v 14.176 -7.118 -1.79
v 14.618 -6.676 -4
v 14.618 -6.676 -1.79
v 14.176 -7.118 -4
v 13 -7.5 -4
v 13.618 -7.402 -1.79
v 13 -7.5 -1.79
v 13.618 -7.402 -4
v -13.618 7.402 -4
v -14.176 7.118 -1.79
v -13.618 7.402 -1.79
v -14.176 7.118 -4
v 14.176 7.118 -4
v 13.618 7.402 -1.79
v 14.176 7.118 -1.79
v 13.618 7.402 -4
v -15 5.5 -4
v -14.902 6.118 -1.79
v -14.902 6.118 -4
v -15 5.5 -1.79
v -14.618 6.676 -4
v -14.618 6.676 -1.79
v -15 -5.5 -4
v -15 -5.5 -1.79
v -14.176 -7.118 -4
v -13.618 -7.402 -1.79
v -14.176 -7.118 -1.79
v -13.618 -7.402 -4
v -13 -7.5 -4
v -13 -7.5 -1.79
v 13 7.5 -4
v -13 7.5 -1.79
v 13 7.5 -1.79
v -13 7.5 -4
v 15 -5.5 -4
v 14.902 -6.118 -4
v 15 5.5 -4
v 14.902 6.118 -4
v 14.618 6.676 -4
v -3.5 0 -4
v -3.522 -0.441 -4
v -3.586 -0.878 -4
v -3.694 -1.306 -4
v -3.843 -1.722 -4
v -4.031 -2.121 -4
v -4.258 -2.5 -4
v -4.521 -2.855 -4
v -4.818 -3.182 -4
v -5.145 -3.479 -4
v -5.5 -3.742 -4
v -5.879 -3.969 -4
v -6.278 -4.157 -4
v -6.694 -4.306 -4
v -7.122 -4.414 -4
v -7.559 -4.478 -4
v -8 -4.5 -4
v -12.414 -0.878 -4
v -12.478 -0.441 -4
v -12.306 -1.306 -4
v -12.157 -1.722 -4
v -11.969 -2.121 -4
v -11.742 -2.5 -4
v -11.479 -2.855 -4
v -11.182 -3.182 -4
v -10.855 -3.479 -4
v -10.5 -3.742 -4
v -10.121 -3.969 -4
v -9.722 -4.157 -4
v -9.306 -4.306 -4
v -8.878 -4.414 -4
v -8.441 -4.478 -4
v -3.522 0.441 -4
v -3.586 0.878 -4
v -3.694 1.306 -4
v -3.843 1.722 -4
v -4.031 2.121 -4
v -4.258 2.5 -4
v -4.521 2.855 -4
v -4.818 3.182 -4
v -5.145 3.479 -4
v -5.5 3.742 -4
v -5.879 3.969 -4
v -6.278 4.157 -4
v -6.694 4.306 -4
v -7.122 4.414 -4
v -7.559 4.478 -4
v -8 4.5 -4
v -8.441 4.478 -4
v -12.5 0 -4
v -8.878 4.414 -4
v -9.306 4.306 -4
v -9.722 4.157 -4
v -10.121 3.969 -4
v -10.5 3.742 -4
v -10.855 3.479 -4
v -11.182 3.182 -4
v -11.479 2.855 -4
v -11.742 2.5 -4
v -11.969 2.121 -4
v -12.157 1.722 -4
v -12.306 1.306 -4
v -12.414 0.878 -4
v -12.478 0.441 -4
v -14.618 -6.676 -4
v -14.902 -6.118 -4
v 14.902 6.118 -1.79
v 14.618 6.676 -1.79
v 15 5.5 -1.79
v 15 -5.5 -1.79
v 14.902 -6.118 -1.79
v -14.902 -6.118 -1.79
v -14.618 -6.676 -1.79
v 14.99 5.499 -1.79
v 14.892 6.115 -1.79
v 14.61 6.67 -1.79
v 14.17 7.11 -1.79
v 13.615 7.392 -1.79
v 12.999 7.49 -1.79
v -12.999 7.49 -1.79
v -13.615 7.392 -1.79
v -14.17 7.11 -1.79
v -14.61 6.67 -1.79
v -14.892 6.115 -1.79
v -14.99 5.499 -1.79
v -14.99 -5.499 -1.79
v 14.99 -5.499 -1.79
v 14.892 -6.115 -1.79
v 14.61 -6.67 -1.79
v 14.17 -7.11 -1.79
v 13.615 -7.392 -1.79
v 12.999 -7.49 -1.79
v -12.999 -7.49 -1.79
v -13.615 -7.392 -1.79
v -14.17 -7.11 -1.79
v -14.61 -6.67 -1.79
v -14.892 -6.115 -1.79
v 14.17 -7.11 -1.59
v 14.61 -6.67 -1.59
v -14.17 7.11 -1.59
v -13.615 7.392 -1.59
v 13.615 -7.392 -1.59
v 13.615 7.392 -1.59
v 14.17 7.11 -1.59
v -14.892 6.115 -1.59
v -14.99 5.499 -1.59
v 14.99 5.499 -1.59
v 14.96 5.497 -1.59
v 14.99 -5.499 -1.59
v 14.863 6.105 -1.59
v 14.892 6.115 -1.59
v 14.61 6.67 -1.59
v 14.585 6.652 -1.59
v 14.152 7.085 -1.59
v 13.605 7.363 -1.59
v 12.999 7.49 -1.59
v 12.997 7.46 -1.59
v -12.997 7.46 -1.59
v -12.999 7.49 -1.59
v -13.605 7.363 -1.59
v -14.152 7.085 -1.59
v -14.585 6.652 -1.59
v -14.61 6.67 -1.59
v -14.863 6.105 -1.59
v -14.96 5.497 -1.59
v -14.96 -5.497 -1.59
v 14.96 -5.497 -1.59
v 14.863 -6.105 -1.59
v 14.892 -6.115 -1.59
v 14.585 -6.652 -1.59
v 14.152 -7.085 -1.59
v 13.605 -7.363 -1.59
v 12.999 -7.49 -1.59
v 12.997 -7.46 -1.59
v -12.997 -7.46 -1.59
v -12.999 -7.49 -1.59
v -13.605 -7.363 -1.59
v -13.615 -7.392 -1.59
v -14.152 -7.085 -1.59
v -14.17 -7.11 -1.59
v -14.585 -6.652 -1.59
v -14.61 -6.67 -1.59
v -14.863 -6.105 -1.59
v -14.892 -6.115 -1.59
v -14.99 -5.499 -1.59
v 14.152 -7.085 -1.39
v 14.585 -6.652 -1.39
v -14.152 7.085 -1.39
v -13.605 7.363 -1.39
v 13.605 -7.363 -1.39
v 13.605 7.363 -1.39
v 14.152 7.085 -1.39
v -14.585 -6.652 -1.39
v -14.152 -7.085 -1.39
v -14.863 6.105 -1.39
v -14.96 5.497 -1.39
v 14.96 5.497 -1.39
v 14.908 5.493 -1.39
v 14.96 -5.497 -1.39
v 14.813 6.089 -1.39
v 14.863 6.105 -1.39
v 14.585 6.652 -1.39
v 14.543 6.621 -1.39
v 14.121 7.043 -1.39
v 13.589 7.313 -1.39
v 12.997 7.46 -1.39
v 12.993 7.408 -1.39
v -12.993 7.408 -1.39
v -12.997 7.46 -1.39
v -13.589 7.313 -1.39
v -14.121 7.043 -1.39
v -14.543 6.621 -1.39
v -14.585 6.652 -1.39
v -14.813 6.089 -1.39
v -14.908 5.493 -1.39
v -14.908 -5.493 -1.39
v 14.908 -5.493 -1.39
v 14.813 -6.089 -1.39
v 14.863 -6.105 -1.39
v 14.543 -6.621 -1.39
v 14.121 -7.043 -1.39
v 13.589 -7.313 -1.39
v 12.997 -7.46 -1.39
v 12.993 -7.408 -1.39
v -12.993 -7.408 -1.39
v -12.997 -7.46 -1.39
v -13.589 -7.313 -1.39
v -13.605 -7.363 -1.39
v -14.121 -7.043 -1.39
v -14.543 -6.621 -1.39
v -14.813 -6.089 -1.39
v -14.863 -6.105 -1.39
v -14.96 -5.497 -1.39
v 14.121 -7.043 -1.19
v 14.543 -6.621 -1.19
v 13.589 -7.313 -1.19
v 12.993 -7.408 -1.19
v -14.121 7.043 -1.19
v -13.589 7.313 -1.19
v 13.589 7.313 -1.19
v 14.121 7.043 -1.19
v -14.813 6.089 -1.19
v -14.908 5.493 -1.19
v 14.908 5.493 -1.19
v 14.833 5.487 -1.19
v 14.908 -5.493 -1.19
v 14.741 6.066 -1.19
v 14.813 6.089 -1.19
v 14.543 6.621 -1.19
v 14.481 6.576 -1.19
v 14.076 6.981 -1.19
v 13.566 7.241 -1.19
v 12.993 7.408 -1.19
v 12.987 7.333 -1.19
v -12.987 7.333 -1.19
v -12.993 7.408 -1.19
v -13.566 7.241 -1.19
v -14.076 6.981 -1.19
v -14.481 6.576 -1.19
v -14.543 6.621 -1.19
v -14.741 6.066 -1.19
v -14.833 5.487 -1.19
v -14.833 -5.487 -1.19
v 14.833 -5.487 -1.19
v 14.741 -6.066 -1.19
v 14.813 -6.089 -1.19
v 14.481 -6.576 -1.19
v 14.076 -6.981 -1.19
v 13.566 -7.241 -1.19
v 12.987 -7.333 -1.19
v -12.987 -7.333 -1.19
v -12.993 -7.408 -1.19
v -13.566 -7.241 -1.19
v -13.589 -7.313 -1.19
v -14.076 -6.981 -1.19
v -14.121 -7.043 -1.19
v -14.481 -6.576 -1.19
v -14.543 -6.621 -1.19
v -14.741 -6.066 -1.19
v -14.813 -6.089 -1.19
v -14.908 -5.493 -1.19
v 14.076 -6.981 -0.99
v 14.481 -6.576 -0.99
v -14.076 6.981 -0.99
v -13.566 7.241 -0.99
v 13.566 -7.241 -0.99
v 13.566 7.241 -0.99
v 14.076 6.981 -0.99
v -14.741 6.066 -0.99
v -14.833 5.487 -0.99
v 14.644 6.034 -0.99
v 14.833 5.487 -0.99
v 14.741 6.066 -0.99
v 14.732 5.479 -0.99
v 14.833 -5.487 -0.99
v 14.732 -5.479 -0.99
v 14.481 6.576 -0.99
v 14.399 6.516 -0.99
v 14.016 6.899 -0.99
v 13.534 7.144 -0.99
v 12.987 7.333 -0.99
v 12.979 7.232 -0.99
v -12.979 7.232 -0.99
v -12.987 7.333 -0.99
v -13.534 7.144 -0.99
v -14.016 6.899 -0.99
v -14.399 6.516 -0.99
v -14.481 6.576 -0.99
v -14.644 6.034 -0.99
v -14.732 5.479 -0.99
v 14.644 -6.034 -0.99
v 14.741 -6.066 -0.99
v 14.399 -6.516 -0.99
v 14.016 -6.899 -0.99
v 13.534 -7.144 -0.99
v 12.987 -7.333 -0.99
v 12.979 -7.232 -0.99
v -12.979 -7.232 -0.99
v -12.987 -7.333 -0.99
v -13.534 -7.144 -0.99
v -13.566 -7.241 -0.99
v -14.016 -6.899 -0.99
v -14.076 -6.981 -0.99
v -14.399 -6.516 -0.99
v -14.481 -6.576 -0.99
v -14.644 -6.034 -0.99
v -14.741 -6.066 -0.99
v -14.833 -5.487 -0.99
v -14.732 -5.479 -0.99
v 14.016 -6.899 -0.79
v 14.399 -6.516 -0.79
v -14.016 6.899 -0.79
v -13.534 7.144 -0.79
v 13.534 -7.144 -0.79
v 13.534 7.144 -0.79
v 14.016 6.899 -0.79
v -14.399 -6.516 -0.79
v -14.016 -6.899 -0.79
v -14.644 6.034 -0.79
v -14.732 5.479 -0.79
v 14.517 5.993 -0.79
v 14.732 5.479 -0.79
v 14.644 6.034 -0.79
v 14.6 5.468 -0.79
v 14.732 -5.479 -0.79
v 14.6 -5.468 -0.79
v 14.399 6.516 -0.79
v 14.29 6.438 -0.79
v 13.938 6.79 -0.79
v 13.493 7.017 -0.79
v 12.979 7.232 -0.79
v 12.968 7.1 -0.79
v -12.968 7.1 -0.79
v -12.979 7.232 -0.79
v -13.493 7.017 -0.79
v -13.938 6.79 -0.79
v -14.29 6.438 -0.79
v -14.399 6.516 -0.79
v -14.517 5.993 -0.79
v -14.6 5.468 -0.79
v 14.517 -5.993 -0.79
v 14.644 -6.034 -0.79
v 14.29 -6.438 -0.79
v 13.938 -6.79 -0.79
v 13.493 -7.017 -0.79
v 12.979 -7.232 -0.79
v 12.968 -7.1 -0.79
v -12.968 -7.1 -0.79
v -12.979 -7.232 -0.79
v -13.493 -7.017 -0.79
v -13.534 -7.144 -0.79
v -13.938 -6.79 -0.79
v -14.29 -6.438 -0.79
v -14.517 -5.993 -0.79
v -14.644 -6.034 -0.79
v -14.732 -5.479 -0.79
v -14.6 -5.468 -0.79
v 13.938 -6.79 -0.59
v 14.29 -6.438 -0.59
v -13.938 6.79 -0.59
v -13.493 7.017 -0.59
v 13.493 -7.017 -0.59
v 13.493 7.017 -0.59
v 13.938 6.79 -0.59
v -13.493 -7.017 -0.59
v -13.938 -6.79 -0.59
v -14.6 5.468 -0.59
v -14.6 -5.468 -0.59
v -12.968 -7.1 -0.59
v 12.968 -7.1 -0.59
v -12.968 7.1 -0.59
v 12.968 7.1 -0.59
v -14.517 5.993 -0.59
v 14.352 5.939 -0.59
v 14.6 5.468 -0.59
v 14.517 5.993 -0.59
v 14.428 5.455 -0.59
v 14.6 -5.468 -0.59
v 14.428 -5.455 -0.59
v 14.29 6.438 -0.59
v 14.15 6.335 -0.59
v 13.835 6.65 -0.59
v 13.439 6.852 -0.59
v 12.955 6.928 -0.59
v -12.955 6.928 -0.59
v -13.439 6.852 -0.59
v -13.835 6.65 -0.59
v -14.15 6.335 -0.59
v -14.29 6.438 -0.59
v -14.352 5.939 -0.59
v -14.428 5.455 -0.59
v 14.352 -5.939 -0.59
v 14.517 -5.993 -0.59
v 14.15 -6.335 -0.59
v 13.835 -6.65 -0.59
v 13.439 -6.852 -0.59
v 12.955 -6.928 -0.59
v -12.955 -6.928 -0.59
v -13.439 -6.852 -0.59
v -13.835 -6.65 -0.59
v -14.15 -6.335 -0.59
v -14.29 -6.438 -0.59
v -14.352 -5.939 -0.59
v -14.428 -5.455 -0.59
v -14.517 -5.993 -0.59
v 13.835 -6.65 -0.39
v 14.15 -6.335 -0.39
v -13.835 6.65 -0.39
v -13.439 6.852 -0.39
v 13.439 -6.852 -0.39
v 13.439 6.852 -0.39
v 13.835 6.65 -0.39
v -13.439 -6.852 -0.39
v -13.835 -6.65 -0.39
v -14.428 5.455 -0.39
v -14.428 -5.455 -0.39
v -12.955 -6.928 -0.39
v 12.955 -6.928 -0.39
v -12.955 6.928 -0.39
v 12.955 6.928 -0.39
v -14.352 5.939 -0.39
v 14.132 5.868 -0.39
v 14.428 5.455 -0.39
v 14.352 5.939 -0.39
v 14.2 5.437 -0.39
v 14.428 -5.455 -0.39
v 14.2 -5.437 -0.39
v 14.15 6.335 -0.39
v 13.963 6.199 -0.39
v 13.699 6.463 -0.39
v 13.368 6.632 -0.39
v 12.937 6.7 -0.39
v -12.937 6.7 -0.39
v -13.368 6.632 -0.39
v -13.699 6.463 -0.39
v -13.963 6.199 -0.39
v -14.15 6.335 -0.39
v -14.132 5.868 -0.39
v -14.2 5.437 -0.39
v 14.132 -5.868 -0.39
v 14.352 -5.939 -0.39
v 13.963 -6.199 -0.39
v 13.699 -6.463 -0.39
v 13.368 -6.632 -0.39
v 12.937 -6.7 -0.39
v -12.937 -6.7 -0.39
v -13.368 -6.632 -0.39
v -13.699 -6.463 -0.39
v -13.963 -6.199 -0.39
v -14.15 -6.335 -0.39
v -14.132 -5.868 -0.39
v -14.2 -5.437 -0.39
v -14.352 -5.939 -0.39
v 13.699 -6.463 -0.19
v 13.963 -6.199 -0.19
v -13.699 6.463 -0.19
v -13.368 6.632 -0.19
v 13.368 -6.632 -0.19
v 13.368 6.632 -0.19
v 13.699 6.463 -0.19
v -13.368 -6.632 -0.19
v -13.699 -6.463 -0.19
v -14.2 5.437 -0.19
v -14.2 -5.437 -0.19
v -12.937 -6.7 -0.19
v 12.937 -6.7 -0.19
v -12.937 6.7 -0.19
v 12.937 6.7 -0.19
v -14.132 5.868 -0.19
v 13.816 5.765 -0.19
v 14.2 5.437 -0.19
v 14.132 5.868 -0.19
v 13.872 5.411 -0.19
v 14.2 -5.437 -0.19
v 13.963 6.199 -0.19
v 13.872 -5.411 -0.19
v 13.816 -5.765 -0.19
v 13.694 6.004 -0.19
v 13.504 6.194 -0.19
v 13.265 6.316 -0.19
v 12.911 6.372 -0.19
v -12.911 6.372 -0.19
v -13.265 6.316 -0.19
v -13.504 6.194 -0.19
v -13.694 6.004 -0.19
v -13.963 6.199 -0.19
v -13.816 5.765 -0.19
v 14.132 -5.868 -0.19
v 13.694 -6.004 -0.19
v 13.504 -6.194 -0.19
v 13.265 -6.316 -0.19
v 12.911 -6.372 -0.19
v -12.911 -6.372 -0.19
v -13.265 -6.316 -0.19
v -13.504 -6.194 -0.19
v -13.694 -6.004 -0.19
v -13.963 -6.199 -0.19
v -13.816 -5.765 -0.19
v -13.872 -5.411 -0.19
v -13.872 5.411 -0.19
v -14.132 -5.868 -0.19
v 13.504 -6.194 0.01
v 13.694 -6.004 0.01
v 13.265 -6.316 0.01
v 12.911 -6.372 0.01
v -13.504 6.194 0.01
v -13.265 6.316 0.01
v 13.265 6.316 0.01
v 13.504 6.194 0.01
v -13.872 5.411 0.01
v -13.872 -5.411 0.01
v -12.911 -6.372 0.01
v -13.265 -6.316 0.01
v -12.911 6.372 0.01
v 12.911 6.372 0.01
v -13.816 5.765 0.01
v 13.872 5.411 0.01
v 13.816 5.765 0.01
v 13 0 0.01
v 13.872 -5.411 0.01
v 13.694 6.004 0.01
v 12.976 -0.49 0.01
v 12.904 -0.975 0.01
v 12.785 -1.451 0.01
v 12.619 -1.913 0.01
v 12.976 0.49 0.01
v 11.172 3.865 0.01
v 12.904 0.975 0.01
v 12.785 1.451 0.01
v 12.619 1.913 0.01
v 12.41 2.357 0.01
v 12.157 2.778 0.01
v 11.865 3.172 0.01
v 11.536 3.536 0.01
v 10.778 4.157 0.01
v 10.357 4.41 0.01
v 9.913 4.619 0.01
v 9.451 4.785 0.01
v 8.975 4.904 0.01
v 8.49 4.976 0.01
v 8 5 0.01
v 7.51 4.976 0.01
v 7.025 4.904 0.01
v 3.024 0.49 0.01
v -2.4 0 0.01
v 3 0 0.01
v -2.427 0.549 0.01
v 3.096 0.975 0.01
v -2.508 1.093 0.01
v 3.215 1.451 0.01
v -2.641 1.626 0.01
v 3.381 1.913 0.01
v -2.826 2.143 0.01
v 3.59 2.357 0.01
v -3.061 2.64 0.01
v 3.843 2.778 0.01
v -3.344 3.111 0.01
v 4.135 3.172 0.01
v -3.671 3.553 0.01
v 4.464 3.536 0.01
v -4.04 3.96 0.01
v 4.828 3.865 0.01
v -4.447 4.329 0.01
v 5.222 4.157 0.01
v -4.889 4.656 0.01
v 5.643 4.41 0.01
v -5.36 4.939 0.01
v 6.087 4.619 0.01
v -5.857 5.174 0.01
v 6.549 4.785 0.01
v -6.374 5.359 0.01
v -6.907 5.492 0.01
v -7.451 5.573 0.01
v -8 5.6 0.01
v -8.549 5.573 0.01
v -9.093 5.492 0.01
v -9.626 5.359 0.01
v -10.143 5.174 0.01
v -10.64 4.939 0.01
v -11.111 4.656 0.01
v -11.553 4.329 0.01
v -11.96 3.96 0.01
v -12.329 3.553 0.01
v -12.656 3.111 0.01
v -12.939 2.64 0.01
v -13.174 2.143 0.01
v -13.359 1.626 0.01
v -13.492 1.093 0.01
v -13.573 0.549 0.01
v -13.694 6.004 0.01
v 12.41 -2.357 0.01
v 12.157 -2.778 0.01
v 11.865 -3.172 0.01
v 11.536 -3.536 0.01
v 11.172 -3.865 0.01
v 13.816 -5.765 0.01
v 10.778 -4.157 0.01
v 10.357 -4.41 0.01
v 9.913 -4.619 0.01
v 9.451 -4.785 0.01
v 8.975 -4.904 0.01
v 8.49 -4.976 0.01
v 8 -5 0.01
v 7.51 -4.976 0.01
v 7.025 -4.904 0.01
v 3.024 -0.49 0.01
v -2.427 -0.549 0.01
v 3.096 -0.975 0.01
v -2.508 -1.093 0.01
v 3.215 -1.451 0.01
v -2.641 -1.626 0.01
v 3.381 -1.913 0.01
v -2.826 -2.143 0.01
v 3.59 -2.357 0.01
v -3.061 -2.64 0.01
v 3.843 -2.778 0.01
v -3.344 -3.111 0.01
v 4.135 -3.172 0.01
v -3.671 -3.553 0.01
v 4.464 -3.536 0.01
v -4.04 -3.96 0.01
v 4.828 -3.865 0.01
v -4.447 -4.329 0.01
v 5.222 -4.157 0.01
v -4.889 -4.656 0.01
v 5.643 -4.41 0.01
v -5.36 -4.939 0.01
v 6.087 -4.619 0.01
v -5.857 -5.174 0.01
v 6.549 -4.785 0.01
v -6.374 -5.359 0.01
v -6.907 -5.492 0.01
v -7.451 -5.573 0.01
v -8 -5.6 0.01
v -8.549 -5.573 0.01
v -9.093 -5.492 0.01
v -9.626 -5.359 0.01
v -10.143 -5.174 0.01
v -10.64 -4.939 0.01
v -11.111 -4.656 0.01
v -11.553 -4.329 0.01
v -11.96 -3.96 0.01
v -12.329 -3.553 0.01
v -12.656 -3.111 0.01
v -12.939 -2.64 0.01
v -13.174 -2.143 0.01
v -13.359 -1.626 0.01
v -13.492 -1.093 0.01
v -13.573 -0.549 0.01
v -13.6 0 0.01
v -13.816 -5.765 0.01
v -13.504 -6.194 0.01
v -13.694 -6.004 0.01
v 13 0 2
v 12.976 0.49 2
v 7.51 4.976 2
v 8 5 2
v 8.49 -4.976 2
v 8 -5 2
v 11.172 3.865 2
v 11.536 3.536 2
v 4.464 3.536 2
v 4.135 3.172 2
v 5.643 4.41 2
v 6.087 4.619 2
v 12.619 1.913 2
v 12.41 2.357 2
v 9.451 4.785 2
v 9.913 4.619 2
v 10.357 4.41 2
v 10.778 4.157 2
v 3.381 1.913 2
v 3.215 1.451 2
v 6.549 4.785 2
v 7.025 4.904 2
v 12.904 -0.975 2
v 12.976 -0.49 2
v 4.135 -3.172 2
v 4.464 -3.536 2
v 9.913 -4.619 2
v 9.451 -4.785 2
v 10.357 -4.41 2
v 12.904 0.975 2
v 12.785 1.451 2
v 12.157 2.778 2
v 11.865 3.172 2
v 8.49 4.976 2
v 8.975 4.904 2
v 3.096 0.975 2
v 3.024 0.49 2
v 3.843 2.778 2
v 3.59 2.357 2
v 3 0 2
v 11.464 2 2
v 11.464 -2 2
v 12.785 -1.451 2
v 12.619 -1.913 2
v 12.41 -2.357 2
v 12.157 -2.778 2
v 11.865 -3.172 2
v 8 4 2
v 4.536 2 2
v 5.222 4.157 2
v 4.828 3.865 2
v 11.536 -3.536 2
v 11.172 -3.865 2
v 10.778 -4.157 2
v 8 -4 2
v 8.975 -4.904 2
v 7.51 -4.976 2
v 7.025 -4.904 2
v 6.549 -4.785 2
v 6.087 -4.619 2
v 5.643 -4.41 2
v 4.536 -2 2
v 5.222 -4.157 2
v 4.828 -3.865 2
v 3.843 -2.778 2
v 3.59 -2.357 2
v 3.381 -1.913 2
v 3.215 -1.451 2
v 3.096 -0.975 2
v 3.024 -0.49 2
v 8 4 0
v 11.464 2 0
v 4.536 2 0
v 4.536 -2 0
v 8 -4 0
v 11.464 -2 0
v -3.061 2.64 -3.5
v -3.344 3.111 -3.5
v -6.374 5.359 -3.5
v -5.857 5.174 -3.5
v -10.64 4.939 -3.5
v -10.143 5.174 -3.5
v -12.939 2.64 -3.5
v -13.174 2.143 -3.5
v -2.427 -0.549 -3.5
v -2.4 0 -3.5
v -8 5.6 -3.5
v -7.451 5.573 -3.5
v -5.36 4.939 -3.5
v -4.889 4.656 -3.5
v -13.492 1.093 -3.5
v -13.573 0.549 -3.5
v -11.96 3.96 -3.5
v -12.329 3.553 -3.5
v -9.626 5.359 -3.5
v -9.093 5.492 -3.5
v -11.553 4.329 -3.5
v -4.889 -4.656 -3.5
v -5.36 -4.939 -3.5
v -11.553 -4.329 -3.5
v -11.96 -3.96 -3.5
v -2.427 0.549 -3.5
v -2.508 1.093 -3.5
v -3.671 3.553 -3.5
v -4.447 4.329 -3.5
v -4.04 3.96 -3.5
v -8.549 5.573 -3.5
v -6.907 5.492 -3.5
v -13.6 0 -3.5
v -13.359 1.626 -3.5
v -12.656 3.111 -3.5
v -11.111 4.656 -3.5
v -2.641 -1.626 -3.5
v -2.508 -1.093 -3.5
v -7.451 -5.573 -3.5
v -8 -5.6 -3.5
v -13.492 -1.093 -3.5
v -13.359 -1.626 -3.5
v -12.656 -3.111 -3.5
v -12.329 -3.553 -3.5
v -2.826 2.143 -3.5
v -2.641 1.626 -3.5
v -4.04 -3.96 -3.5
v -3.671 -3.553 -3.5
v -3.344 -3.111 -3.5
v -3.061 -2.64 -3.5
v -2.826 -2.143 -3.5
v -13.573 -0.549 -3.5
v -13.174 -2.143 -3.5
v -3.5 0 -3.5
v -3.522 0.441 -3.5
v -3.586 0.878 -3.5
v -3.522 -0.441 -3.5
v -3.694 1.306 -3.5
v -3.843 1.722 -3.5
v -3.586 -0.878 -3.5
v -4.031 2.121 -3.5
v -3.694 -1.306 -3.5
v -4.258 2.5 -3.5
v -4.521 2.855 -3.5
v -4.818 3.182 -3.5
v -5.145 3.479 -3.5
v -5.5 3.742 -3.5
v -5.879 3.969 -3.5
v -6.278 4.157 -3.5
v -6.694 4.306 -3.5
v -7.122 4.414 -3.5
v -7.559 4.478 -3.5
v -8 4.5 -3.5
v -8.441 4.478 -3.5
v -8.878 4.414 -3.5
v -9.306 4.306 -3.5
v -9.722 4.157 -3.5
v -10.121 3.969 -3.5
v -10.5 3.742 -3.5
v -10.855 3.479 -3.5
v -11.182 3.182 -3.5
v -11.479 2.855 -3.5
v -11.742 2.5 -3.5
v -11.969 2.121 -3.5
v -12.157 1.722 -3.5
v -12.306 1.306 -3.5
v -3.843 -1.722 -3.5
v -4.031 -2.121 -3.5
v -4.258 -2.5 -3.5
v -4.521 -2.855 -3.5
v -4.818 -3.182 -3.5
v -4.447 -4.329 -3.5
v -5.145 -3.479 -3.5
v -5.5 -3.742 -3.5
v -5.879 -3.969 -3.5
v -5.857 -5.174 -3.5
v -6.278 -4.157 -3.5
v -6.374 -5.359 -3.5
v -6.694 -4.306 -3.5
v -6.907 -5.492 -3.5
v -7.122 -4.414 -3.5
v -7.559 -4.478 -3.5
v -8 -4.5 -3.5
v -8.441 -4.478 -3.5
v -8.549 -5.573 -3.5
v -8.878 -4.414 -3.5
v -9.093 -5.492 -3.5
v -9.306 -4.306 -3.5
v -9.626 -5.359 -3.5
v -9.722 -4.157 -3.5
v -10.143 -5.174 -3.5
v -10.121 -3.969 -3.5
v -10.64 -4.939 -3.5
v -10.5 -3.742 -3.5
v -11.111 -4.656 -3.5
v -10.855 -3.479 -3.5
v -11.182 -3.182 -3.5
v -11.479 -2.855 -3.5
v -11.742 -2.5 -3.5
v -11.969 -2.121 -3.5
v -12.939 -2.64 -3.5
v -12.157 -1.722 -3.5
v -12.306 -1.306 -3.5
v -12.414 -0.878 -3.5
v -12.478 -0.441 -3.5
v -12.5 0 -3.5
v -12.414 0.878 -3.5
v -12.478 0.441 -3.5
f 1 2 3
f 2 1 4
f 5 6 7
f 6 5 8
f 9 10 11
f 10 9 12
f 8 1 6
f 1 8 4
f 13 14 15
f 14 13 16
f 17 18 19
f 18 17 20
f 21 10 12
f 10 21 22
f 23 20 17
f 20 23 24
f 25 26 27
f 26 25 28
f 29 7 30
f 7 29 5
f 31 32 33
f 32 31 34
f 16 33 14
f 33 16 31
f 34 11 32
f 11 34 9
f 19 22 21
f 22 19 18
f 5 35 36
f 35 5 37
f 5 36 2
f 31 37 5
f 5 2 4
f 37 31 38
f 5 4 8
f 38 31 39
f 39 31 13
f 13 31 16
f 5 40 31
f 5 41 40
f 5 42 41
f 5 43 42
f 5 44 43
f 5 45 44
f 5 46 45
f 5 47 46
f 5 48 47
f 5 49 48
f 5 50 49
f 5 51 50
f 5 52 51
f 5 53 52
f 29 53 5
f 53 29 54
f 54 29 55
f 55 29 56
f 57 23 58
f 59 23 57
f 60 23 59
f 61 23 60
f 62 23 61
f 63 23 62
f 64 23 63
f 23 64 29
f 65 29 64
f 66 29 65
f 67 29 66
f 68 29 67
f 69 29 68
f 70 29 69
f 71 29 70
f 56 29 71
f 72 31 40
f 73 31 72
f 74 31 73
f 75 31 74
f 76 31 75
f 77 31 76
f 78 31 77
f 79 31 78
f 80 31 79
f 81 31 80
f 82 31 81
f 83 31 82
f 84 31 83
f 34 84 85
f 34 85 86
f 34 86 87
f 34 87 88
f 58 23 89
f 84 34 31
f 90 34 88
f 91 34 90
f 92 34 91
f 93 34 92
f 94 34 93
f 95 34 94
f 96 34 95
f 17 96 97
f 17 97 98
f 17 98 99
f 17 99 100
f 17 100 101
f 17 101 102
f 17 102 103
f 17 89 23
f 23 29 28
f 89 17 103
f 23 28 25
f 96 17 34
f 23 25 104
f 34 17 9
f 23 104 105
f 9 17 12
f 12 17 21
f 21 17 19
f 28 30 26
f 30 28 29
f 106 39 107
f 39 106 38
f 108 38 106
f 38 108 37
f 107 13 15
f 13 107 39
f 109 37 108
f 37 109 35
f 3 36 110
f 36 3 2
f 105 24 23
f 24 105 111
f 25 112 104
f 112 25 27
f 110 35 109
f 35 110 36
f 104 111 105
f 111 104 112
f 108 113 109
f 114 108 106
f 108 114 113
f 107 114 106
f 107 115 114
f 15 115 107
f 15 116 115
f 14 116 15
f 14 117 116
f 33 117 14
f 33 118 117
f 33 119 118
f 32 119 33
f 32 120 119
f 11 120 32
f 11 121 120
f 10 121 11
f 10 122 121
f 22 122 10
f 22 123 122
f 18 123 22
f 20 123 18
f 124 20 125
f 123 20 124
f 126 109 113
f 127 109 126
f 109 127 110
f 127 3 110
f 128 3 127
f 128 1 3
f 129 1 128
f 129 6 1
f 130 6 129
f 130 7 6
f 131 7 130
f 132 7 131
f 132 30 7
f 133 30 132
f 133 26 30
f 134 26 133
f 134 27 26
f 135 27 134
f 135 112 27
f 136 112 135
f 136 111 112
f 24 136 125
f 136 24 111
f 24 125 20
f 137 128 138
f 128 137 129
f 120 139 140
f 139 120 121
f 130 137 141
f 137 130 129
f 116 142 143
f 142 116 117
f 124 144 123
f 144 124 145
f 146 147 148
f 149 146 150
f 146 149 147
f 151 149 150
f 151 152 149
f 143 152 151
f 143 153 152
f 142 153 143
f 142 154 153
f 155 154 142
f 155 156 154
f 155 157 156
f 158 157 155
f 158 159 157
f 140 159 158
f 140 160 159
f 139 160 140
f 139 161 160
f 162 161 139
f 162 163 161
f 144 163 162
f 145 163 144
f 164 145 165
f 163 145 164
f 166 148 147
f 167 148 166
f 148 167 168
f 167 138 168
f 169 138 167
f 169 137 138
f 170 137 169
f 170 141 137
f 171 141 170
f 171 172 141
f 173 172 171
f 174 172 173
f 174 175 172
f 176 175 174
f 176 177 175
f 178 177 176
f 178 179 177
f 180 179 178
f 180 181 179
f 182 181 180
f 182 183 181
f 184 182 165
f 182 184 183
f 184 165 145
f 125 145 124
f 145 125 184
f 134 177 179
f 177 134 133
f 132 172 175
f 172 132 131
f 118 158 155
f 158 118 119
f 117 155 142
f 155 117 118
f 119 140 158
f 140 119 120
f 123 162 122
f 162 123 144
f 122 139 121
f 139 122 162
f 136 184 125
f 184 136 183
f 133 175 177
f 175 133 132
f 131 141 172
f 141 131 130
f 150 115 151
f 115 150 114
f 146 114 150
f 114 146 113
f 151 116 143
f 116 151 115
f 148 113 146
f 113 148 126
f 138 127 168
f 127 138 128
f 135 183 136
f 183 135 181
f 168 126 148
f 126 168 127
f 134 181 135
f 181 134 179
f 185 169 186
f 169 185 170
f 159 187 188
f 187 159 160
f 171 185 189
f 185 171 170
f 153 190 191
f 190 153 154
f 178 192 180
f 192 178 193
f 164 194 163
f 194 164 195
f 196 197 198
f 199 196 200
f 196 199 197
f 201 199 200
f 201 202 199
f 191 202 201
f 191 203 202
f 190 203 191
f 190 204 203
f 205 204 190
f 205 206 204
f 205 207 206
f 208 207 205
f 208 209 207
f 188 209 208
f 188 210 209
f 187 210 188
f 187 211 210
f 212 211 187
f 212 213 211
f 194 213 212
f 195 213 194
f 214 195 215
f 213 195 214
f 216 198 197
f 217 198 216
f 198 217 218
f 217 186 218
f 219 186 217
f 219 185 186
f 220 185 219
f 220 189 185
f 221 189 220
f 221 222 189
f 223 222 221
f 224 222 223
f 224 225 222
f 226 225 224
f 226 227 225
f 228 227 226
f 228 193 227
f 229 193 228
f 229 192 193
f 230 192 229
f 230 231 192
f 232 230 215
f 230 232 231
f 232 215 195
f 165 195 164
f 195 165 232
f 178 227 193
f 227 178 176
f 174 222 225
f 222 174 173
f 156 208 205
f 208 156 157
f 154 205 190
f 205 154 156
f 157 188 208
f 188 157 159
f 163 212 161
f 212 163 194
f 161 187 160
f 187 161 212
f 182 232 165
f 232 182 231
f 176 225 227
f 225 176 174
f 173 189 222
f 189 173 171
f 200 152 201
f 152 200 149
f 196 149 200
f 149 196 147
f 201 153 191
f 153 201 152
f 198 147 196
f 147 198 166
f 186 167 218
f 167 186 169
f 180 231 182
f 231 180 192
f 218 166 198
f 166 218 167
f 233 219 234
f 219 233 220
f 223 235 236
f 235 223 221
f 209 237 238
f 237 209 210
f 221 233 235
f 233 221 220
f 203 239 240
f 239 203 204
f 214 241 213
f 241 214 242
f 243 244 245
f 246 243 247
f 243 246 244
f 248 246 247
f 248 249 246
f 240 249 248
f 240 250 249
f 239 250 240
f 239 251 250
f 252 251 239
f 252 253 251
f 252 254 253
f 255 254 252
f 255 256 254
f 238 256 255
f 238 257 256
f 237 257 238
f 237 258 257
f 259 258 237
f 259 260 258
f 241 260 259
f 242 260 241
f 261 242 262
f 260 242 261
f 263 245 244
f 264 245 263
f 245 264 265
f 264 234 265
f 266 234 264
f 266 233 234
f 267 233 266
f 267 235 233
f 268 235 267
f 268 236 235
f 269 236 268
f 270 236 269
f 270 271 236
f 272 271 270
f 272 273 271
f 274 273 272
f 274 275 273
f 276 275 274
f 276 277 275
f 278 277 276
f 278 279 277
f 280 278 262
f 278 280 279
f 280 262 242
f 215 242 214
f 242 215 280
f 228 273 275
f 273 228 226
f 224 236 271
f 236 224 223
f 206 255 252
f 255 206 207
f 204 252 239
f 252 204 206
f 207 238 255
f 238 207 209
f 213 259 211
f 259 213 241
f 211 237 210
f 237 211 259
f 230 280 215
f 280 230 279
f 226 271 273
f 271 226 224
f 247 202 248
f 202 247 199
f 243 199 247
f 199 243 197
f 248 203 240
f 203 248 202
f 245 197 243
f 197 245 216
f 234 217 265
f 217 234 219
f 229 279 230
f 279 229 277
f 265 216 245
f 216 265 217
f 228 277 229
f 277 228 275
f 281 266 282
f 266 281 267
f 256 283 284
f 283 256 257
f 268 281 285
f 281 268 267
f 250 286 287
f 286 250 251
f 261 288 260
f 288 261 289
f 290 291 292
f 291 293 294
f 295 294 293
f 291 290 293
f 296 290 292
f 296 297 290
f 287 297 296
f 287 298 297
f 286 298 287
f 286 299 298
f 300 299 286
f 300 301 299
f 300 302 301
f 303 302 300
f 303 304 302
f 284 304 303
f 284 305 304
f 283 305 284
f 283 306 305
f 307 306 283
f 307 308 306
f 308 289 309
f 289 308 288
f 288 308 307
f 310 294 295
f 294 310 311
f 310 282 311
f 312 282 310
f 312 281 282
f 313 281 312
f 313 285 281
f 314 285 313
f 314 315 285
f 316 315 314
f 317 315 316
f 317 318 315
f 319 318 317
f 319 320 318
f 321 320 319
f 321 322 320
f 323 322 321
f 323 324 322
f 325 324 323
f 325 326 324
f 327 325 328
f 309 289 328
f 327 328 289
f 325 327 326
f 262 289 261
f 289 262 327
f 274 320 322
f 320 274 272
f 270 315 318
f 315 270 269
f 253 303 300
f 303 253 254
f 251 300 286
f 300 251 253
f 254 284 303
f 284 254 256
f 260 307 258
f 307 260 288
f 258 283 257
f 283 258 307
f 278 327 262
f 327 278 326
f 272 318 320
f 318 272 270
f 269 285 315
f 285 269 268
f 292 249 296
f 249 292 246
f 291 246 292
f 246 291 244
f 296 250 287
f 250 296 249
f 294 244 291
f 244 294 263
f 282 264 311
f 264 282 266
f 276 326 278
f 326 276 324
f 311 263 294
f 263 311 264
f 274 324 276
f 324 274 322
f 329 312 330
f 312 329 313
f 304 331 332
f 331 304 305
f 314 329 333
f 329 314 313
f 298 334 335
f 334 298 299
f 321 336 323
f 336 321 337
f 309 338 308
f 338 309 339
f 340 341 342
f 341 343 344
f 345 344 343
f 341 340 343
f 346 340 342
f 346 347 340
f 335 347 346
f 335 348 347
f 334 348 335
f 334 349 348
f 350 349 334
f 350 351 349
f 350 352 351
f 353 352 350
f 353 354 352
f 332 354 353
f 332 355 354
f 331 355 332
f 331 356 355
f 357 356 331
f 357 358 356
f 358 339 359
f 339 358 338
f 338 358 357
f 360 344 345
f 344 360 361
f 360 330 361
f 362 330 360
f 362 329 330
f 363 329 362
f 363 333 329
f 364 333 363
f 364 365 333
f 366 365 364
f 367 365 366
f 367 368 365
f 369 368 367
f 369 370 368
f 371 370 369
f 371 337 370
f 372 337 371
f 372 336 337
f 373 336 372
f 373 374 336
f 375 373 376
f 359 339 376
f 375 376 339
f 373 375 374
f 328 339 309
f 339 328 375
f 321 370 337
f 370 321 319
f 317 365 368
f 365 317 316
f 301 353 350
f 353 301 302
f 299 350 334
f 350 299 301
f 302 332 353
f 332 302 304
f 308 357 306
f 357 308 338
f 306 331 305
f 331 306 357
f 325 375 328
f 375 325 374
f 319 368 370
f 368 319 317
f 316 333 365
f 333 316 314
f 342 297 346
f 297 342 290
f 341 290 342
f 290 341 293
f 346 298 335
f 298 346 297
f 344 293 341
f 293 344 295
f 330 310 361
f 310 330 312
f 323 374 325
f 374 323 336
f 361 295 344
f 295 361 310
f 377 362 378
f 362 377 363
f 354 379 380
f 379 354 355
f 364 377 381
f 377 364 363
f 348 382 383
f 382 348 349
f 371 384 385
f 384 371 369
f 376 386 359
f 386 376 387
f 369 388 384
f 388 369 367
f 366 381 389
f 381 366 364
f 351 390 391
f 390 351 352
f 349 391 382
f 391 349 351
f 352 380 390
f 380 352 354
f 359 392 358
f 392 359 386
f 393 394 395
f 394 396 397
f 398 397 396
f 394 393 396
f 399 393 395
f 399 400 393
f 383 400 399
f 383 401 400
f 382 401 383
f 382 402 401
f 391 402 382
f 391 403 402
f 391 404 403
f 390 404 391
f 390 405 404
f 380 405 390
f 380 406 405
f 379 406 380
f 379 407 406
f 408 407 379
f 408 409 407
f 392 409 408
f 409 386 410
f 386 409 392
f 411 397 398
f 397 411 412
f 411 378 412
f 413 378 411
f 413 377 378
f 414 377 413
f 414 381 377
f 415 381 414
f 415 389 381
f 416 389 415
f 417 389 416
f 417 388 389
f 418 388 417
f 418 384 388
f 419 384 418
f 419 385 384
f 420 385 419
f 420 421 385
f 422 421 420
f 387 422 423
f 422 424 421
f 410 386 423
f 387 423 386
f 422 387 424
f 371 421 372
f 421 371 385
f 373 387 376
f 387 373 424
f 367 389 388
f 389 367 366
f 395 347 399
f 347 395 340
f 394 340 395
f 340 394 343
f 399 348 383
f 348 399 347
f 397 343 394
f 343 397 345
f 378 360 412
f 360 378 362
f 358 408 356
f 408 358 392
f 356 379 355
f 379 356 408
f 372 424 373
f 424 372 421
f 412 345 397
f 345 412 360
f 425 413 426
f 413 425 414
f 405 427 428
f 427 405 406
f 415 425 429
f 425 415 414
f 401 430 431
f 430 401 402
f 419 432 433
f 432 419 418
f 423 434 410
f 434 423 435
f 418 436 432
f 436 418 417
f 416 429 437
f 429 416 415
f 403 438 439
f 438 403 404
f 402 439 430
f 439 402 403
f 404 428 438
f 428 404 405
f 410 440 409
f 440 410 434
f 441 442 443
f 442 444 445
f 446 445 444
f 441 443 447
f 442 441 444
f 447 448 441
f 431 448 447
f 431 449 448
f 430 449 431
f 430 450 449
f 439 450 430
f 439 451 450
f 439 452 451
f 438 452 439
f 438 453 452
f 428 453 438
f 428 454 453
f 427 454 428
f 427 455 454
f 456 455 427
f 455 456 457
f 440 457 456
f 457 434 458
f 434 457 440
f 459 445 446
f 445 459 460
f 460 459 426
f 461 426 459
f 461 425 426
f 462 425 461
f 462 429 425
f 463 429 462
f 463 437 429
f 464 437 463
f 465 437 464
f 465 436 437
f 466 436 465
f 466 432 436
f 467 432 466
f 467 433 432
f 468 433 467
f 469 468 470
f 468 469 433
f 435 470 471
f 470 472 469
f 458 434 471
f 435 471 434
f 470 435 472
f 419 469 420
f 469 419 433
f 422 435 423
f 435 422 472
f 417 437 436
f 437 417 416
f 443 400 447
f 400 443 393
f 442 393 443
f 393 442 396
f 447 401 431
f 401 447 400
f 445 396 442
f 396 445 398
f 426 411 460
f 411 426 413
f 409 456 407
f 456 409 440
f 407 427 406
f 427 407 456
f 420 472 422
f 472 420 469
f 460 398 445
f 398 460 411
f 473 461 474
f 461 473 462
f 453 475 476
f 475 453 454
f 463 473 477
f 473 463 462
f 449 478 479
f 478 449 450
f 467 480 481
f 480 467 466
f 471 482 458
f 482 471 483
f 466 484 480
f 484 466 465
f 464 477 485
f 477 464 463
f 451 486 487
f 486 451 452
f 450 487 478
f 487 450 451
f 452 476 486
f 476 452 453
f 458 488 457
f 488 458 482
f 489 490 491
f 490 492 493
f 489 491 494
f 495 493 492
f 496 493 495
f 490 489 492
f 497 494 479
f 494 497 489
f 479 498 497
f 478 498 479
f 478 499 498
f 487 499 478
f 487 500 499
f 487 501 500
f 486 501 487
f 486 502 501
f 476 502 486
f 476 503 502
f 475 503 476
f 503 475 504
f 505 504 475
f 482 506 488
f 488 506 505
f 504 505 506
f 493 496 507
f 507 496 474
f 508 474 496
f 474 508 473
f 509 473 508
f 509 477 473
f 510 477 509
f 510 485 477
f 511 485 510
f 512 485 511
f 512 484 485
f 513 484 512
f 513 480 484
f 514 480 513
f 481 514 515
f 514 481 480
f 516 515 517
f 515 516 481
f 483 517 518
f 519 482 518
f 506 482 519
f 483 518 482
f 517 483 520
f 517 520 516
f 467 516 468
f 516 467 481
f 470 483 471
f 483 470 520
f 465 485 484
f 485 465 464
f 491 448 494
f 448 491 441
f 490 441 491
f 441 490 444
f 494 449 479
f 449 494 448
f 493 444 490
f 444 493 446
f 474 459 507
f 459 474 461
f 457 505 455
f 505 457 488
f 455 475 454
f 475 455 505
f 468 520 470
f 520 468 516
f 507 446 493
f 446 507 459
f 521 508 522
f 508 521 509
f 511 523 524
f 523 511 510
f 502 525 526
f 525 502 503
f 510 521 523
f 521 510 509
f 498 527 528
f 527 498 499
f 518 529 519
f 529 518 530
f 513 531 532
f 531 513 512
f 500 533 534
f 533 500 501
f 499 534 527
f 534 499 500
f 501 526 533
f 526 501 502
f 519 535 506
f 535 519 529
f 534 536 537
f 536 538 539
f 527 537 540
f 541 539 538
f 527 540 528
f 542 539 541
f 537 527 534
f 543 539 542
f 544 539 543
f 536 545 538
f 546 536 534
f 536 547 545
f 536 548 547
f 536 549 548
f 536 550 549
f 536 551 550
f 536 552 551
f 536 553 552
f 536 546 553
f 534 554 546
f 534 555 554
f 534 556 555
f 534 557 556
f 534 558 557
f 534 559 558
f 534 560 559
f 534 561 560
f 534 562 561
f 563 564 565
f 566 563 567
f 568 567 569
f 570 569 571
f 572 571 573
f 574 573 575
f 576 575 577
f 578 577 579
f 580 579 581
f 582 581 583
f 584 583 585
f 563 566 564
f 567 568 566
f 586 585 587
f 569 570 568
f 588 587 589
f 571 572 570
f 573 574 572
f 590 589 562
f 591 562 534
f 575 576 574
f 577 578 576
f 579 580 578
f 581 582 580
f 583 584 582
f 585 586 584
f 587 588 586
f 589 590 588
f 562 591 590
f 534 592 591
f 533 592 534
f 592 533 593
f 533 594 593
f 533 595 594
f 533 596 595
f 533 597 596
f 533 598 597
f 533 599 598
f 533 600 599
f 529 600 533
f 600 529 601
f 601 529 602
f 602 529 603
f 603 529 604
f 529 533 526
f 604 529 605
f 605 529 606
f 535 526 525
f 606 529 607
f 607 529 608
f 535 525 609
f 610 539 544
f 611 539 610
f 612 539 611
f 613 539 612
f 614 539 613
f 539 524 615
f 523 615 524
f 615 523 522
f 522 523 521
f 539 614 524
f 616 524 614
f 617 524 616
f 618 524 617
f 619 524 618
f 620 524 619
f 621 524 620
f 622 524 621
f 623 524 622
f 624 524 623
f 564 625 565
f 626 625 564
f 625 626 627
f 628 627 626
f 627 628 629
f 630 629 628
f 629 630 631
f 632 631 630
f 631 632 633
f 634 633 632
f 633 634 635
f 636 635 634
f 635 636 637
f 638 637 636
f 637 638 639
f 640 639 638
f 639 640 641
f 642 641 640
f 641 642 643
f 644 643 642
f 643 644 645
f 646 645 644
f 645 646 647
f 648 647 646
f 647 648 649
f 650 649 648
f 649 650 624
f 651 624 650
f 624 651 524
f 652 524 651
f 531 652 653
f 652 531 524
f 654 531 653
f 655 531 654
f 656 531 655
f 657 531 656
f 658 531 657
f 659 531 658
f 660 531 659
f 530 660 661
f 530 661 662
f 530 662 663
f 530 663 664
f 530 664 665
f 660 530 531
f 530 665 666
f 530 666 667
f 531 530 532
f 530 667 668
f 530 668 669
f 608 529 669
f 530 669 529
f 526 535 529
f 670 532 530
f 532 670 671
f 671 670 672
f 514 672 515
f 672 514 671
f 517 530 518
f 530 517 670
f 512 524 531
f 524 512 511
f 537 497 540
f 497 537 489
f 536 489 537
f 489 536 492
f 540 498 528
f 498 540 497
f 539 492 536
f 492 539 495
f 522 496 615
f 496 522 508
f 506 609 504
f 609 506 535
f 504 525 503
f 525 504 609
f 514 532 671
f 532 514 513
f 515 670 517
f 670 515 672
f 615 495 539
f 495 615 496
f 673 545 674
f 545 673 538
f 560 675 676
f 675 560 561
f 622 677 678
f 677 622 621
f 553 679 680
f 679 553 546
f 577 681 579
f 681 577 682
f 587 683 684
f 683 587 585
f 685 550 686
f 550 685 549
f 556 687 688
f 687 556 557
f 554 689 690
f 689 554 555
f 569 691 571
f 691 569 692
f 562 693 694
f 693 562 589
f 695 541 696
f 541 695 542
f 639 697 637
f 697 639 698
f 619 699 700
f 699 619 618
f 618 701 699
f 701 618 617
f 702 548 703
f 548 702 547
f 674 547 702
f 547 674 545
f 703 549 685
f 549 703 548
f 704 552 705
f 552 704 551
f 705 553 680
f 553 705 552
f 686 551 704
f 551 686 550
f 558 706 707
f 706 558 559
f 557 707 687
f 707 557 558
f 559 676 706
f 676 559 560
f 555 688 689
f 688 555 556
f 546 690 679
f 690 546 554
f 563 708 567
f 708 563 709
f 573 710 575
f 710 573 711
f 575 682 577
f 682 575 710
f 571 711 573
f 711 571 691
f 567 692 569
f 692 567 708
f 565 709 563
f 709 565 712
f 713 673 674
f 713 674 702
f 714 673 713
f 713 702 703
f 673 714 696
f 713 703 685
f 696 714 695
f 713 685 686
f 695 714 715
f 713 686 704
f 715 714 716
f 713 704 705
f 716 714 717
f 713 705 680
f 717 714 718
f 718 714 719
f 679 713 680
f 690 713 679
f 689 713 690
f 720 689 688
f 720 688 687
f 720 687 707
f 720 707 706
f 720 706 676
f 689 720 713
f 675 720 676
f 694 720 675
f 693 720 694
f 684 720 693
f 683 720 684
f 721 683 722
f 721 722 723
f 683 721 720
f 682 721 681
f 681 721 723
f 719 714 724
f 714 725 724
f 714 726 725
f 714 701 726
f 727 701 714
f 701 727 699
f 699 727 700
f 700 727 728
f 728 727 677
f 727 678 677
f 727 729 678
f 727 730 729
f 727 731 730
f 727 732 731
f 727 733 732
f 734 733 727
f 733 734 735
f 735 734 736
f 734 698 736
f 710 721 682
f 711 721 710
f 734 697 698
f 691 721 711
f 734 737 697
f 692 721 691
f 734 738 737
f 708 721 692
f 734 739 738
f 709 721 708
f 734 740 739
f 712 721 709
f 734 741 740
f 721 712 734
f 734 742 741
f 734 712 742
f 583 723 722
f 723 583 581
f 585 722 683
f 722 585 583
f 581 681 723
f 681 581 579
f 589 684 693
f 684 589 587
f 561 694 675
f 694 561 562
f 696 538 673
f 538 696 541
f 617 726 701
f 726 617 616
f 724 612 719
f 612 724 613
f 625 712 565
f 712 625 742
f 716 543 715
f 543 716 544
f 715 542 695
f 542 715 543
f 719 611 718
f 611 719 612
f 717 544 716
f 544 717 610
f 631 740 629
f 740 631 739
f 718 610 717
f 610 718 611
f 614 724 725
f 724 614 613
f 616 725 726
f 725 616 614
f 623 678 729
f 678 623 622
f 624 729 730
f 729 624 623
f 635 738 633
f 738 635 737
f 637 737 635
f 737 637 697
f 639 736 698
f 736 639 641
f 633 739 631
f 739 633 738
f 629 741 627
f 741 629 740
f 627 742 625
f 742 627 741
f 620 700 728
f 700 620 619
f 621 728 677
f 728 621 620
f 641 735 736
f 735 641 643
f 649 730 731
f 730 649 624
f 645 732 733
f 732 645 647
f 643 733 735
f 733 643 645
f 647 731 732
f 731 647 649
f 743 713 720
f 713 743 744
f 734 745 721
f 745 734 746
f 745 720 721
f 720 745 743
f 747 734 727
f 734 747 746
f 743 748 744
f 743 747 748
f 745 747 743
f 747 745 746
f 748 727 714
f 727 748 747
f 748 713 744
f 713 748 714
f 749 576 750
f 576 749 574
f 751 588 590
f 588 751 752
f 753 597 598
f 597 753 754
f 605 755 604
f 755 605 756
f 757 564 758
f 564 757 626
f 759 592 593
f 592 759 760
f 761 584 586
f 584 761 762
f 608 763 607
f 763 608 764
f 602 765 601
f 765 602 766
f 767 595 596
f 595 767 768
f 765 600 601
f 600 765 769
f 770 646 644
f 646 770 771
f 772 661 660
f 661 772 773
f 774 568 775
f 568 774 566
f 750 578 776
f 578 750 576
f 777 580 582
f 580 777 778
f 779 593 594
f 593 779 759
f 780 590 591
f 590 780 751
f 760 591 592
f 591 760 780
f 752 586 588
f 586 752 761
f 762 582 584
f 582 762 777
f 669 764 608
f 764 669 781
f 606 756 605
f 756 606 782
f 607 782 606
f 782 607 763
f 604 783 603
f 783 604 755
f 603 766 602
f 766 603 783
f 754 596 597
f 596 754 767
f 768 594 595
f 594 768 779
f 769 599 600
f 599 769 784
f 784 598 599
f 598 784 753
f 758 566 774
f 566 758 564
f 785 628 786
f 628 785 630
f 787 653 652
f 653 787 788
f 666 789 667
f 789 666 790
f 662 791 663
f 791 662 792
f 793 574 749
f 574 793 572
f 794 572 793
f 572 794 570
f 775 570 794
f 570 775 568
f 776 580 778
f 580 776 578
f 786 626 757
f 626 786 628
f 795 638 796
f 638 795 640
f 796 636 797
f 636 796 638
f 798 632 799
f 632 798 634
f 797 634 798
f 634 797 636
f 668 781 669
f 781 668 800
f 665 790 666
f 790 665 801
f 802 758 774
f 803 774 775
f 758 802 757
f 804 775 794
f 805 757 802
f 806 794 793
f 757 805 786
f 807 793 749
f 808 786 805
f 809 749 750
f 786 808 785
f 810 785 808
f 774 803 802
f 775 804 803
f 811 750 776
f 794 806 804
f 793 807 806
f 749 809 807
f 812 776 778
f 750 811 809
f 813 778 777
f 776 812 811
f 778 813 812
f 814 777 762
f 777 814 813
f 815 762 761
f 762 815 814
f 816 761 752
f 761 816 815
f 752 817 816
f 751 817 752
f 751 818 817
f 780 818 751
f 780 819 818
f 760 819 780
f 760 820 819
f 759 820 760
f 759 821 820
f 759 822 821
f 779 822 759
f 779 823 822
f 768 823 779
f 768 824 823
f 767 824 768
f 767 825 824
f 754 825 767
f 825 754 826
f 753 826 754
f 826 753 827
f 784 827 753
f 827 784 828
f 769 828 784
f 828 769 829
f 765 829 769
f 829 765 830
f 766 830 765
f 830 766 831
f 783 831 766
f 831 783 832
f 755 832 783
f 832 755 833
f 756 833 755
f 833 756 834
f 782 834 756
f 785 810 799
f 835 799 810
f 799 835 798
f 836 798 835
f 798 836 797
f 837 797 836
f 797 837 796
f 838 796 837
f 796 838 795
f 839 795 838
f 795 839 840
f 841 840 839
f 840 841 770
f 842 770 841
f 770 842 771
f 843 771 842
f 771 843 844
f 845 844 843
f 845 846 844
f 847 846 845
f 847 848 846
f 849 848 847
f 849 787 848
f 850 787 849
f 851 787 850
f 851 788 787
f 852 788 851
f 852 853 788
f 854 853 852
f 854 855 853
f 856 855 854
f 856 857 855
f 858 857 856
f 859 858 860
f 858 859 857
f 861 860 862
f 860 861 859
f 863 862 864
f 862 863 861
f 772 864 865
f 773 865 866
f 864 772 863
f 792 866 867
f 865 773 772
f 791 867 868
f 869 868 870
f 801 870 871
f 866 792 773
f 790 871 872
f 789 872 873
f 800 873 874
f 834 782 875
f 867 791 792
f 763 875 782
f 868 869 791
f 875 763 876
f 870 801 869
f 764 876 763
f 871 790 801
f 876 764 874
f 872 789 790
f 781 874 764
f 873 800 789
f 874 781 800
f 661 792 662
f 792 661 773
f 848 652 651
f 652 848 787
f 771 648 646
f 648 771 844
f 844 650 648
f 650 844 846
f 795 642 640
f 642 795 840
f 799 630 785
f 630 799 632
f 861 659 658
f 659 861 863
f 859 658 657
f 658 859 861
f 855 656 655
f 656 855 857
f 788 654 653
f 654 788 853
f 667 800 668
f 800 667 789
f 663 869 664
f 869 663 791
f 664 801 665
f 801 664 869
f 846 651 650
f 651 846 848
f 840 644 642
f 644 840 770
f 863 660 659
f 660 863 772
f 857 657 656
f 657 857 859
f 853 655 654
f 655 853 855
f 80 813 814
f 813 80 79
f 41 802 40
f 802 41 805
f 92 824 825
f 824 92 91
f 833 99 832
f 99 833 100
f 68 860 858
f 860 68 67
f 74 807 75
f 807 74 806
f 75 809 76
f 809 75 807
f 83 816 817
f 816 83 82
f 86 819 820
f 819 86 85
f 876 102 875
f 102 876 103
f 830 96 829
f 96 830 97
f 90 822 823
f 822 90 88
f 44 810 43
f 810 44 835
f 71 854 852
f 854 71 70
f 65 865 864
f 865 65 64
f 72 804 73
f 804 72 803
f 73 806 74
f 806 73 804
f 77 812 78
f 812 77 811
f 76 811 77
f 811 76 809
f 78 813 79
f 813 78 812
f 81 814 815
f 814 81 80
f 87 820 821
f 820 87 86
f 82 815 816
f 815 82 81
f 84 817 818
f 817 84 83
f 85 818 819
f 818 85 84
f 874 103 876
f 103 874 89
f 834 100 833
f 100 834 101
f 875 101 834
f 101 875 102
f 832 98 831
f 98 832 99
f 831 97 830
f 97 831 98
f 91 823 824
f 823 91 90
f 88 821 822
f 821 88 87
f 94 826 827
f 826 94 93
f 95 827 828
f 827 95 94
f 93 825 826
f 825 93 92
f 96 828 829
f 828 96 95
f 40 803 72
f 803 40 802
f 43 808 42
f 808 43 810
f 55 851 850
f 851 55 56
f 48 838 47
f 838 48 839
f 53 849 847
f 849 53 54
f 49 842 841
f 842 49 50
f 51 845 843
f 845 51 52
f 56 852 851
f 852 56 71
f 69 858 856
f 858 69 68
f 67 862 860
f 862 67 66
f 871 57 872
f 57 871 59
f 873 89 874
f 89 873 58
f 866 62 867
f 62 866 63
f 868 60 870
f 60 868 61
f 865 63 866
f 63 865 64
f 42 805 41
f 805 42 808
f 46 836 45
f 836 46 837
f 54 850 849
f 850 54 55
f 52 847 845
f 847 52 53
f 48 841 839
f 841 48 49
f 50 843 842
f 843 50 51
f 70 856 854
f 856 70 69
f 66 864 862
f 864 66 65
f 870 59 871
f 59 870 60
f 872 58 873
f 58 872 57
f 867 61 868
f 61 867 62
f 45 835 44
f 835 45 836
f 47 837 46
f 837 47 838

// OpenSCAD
//Created by Oleg Skidan RC6OF (ex UR3IQO)
//
//Visit https://github.com/UR3IQO/CW_Paddle for more information
//
//This project is distributed under Creative Commons Attribution 4.0 International
//See the LICENSE file for the details


//This part is used to check (and correct if needed) the size of the pockets for bearings and stands
//Данная деталь используется для проверки (и коррекции при необходимости) размеров 
//карманов для монтажа подшипников и стоек

$fn = 64;

include <lib/polyround.scad>

bearing_mount_d = 11.2; //Bearing mount pocket diameter (диаметр кармана для монтажа подшипника)
stand_d = 8.1;  //Stand mount pocket diameter (диаметр кармана для монтажа стойки)

module rounded_square(size, r)
{
   pts = [[ size.x/2,  size.y/2, r],
          [-size.x/2,  size.y/2, r],
          [-size.x/2, -size.y/2, r],
          [ size.x/2, -size.y/2, r]];
   polygon(polyRound(pts));
}

h = 4;

difference()
{
   union()
   {
      translate([0, 0, -h]) extrudeWithRadius(h, 0, 2, 10) rounded_square([30, 15], 2);

      translate([8, 0, 0]) cylinder(h = 2, d = 10);
   }

   translate([-8, 0, -3.5]) cylinder(h, d = 11.2);
   translate([-8, 0, -h-1]) cylinder(h, d = 9);

   translate([8, 0, 0])
   {
      rotate([0, 0, 30]) cylinder(10, d = 8, $fn = 6); 
      cylinder(20, d = 3);
   }
}
